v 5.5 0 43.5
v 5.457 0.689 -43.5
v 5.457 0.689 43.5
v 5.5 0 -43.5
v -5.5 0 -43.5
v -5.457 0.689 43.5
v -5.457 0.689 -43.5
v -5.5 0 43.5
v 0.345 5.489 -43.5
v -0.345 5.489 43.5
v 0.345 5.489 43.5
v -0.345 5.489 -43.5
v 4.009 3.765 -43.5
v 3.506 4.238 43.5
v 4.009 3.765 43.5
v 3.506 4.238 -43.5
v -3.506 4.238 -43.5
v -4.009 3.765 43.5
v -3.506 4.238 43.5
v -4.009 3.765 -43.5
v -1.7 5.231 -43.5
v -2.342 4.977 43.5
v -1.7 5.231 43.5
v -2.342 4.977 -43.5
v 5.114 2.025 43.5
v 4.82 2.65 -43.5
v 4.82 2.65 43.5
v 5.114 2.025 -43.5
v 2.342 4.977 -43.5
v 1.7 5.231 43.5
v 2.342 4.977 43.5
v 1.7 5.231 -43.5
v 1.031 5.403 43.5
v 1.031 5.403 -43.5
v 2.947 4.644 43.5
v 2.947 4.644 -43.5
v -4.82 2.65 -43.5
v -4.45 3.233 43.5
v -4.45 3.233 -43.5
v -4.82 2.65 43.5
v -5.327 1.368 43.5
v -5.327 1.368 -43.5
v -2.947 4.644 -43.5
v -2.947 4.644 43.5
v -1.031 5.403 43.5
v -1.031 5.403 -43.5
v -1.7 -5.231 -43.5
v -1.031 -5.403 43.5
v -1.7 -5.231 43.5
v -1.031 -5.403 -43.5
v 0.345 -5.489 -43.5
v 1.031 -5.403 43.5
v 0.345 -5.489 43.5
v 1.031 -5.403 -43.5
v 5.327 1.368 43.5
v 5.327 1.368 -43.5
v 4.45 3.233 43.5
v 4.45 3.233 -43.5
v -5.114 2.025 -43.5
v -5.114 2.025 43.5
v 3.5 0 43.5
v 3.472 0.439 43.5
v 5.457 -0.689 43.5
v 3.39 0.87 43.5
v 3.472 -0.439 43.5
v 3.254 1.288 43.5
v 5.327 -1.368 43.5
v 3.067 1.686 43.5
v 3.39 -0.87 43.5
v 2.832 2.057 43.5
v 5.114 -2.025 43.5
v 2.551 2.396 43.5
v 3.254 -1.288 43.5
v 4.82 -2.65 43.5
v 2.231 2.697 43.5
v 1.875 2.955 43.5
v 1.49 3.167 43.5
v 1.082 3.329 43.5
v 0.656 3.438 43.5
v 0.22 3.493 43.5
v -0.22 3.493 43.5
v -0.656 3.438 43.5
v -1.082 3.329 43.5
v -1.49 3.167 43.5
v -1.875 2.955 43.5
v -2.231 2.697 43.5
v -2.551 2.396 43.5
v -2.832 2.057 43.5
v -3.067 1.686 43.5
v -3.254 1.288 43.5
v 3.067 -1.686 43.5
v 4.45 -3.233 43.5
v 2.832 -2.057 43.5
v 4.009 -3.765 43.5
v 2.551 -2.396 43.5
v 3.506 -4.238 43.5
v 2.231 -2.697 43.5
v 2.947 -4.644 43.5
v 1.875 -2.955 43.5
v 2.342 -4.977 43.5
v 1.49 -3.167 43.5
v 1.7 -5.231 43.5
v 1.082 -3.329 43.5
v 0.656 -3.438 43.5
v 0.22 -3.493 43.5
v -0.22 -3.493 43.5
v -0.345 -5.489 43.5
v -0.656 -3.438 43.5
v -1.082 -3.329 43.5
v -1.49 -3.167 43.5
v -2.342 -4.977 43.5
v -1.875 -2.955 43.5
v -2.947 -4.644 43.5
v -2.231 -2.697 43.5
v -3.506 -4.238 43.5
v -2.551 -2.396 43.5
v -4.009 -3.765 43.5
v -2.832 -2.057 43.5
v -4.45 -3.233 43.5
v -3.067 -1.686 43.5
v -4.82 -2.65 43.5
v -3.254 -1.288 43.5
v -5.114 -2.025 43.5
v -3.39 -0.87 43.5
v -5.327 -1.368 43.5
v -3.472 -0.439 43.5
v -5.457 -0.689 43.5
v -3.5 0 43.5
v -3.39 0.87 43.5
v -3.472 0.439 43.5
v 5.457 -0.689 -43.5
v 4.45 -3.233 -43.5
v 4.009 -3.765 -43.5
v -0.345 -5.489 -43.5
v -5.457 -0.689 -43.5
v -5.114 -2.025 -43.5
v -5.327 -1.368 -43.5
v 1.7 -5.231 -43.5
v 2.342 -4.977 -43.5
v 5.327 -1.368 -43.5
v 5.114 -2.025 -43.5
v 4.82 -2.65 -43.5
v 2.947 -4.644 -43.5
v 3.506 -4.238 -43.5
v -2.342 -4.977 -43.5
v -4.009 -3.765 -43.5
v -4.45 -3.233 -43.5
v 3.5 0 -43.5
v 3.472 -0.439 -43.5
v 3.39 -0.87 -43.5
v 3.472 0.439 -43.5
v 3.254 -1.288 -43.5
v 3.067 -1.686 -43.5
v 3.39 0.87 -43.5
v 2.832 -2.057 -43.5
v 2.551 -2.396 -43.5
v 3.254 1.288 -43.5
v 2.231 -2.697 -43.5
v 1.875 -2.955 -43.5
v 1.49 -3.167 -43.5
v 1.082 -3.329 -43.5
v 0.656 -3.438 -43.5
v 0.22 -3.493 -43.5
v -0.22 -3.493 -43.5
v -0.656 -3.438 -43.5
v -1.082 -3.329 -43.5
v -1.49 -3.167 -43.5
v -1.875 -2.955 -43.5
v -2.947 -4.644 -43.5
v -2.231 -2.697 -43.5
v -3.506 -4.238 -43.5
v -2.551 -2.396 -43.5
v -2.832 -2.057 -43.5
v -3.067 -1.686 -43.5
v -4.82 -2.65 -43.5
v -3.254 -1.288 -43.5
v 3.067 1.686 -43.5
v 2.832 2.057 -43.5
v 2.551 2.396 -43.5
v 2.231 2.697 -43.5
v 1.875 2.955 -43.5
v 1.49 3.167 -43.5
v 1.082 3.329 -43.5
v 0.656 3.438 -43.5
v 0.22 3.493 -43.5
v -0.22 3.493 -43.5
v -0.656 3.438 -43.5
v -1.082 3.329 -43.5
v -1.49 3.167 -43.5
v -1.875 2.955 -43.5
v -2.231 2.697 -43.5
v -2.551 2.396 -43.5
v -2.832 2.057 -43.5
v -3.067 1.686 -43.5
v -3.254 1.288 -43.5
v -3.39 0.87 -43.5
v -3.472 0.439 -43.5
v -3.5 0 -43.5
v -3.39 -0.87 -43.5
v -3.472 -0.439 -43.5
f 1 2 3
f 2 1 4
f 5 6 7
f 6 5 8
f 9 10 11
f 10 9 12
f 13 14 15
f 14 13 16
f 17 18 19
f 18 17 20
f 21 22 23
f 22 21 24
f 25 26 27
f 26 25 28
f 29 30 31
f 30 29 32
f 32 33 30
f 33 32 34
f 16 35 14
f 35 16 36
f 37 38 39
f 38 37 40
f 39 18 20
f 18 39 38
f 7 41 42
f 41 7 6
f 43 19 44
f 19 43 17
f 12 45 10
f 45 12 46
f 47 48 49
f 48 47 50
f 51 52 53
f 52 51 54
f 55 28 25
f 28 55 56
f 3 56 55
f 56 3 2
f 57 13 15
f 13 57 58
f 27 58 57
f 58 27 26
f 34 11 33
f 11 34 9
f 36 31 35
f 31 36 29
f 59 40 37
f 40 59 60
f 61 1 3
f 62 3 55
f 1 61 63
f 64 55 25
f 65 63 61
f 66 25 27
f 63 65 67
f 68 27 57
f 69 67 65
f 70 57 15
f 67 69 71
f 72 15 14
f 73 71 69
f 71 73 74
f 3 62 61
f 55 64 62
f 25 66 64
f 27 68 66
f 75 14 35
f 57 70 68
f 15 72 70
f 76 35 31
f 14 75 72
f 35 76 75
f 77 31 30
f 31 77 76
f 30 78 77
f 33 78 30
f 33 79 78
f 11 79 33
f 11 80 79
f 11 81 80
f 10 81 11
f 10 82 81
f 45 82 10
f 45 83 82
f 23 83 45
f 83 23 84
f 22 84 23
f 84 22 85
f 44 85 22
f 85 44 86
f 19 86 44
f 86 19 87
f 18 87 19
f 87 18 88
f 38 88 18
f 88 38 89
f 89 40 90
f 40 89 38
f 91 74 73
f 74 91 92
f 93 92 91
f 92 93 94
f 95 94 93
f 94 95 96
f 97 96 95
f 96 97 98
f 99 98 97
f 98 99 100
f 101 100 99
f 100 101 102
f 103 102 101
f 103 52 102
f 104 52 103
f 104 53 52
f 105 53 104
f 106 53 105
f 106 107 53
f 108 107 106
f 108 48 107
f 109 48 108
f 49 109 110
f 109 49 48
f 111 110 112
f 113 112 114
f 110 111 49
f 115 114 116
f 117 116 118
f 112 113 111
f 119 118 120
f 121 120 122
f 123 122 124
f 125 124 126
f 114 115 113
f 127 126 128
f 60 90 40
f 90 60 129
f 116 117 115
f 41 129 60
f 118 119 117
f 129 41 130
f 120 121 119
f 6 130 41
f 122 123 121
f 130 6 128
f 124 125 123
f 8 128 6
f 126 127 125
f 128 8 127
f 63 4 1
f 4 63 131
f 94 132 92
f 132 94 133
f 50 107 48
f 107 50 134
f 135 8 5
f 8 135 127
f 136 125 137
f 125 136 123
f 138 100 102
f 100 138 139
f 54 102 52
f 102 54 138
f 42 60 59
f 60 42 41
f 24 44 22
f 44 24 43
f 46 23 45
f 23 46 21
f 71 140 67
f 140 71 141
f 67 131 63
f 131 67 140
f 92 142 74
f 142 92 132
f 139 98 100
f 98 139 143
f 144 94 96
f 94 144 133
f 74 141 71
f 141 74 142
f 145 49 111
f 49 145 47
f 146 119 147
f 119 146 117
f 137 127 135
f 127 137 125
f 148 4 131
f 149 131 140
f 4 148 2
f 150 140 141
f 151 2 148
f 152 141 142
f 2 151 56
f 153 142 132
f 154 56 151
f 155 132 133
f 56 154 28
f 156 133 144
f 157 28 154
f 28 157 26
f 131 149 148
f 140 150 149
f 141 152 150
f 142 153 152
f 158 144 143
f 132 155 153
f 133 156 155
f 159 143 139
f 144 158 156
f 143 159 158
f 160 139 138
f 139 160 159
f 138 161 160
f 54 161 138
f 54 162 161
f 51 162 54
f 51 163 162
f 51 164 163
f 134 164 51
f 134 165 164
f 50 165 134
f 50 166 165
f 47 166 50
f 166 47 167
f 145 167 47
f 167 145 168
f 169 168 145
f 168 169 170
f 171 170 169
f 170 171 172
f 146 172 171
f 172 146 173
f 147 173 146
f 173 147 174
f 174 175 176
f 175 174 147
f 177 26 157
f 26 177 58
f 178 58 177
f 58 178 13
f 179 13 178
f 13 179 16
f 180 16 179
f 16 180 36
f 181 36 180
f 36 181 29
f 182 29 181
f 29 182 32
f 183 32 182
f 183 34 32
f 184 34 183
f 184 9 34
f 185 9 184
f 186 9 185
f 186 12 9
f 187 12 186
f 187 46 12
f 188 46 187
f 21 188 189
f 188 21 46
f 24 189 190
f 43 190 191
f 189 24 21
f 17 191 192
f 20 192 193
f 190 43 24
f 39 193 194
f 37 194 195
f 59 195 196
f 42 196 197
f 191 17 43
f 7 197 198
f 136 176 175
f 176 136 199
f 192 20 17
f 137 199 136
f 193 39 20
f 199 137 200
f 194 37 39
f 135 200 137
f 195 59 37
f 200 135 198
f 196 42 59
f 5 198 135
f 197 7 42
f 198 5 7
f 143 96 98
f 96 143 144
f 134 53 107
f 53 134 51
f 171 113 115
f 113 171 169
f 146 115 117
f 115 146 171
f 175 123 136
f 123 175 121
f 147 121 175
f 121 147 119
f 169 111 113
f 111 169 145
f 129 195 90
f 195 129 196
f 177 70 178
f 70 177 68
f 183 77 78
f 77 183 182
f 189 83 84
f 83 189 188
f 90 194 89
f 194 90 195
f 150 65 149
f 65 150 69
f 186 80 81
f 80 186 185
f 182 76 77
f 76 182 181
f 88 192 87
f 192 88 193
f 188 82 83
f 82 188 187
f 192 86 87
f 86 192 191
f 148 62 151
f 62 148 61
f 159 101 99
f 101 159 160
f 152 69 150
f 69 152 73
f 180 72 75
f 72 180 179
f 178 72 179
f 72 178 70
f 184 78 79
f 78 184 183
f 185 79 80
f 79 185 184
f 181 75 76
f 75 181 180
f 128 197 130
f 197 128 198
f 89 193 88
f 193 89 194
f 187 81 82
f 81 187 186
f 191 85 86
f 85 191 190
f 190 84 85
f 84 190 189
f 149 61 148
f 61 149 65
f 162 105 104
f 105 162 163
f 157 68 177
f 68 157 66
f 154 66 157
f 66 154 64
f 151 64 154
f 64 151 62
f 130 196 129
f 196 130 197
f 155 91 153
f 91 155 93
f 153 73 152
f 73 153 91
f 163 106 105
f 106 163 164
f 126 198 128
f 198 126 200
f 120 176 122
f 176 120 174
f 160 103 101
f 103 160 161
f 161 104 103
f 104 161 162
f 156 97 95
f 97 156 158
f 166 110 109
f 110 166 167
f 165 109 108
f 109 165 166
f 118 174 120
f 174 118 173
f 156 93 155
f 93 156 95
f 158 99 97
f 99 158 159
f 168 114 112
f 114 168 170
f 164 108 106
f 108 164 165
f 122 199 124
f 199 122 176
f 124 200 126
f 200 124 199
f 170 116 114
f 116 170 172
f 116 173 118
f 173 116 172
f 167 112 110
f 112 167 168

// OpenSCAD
$fn = 50;


difference() {
	union() {
		translate(v = [0, 0, -43.5000000000]) {
			cylinder(h = 87, r = 5.5000000000);
		}
	}
	union() {
		translate(v = [0, 0, -100.0000000000]) {
			cylinder(h = 200, r = 3.5000000000);
		}
	}
}
